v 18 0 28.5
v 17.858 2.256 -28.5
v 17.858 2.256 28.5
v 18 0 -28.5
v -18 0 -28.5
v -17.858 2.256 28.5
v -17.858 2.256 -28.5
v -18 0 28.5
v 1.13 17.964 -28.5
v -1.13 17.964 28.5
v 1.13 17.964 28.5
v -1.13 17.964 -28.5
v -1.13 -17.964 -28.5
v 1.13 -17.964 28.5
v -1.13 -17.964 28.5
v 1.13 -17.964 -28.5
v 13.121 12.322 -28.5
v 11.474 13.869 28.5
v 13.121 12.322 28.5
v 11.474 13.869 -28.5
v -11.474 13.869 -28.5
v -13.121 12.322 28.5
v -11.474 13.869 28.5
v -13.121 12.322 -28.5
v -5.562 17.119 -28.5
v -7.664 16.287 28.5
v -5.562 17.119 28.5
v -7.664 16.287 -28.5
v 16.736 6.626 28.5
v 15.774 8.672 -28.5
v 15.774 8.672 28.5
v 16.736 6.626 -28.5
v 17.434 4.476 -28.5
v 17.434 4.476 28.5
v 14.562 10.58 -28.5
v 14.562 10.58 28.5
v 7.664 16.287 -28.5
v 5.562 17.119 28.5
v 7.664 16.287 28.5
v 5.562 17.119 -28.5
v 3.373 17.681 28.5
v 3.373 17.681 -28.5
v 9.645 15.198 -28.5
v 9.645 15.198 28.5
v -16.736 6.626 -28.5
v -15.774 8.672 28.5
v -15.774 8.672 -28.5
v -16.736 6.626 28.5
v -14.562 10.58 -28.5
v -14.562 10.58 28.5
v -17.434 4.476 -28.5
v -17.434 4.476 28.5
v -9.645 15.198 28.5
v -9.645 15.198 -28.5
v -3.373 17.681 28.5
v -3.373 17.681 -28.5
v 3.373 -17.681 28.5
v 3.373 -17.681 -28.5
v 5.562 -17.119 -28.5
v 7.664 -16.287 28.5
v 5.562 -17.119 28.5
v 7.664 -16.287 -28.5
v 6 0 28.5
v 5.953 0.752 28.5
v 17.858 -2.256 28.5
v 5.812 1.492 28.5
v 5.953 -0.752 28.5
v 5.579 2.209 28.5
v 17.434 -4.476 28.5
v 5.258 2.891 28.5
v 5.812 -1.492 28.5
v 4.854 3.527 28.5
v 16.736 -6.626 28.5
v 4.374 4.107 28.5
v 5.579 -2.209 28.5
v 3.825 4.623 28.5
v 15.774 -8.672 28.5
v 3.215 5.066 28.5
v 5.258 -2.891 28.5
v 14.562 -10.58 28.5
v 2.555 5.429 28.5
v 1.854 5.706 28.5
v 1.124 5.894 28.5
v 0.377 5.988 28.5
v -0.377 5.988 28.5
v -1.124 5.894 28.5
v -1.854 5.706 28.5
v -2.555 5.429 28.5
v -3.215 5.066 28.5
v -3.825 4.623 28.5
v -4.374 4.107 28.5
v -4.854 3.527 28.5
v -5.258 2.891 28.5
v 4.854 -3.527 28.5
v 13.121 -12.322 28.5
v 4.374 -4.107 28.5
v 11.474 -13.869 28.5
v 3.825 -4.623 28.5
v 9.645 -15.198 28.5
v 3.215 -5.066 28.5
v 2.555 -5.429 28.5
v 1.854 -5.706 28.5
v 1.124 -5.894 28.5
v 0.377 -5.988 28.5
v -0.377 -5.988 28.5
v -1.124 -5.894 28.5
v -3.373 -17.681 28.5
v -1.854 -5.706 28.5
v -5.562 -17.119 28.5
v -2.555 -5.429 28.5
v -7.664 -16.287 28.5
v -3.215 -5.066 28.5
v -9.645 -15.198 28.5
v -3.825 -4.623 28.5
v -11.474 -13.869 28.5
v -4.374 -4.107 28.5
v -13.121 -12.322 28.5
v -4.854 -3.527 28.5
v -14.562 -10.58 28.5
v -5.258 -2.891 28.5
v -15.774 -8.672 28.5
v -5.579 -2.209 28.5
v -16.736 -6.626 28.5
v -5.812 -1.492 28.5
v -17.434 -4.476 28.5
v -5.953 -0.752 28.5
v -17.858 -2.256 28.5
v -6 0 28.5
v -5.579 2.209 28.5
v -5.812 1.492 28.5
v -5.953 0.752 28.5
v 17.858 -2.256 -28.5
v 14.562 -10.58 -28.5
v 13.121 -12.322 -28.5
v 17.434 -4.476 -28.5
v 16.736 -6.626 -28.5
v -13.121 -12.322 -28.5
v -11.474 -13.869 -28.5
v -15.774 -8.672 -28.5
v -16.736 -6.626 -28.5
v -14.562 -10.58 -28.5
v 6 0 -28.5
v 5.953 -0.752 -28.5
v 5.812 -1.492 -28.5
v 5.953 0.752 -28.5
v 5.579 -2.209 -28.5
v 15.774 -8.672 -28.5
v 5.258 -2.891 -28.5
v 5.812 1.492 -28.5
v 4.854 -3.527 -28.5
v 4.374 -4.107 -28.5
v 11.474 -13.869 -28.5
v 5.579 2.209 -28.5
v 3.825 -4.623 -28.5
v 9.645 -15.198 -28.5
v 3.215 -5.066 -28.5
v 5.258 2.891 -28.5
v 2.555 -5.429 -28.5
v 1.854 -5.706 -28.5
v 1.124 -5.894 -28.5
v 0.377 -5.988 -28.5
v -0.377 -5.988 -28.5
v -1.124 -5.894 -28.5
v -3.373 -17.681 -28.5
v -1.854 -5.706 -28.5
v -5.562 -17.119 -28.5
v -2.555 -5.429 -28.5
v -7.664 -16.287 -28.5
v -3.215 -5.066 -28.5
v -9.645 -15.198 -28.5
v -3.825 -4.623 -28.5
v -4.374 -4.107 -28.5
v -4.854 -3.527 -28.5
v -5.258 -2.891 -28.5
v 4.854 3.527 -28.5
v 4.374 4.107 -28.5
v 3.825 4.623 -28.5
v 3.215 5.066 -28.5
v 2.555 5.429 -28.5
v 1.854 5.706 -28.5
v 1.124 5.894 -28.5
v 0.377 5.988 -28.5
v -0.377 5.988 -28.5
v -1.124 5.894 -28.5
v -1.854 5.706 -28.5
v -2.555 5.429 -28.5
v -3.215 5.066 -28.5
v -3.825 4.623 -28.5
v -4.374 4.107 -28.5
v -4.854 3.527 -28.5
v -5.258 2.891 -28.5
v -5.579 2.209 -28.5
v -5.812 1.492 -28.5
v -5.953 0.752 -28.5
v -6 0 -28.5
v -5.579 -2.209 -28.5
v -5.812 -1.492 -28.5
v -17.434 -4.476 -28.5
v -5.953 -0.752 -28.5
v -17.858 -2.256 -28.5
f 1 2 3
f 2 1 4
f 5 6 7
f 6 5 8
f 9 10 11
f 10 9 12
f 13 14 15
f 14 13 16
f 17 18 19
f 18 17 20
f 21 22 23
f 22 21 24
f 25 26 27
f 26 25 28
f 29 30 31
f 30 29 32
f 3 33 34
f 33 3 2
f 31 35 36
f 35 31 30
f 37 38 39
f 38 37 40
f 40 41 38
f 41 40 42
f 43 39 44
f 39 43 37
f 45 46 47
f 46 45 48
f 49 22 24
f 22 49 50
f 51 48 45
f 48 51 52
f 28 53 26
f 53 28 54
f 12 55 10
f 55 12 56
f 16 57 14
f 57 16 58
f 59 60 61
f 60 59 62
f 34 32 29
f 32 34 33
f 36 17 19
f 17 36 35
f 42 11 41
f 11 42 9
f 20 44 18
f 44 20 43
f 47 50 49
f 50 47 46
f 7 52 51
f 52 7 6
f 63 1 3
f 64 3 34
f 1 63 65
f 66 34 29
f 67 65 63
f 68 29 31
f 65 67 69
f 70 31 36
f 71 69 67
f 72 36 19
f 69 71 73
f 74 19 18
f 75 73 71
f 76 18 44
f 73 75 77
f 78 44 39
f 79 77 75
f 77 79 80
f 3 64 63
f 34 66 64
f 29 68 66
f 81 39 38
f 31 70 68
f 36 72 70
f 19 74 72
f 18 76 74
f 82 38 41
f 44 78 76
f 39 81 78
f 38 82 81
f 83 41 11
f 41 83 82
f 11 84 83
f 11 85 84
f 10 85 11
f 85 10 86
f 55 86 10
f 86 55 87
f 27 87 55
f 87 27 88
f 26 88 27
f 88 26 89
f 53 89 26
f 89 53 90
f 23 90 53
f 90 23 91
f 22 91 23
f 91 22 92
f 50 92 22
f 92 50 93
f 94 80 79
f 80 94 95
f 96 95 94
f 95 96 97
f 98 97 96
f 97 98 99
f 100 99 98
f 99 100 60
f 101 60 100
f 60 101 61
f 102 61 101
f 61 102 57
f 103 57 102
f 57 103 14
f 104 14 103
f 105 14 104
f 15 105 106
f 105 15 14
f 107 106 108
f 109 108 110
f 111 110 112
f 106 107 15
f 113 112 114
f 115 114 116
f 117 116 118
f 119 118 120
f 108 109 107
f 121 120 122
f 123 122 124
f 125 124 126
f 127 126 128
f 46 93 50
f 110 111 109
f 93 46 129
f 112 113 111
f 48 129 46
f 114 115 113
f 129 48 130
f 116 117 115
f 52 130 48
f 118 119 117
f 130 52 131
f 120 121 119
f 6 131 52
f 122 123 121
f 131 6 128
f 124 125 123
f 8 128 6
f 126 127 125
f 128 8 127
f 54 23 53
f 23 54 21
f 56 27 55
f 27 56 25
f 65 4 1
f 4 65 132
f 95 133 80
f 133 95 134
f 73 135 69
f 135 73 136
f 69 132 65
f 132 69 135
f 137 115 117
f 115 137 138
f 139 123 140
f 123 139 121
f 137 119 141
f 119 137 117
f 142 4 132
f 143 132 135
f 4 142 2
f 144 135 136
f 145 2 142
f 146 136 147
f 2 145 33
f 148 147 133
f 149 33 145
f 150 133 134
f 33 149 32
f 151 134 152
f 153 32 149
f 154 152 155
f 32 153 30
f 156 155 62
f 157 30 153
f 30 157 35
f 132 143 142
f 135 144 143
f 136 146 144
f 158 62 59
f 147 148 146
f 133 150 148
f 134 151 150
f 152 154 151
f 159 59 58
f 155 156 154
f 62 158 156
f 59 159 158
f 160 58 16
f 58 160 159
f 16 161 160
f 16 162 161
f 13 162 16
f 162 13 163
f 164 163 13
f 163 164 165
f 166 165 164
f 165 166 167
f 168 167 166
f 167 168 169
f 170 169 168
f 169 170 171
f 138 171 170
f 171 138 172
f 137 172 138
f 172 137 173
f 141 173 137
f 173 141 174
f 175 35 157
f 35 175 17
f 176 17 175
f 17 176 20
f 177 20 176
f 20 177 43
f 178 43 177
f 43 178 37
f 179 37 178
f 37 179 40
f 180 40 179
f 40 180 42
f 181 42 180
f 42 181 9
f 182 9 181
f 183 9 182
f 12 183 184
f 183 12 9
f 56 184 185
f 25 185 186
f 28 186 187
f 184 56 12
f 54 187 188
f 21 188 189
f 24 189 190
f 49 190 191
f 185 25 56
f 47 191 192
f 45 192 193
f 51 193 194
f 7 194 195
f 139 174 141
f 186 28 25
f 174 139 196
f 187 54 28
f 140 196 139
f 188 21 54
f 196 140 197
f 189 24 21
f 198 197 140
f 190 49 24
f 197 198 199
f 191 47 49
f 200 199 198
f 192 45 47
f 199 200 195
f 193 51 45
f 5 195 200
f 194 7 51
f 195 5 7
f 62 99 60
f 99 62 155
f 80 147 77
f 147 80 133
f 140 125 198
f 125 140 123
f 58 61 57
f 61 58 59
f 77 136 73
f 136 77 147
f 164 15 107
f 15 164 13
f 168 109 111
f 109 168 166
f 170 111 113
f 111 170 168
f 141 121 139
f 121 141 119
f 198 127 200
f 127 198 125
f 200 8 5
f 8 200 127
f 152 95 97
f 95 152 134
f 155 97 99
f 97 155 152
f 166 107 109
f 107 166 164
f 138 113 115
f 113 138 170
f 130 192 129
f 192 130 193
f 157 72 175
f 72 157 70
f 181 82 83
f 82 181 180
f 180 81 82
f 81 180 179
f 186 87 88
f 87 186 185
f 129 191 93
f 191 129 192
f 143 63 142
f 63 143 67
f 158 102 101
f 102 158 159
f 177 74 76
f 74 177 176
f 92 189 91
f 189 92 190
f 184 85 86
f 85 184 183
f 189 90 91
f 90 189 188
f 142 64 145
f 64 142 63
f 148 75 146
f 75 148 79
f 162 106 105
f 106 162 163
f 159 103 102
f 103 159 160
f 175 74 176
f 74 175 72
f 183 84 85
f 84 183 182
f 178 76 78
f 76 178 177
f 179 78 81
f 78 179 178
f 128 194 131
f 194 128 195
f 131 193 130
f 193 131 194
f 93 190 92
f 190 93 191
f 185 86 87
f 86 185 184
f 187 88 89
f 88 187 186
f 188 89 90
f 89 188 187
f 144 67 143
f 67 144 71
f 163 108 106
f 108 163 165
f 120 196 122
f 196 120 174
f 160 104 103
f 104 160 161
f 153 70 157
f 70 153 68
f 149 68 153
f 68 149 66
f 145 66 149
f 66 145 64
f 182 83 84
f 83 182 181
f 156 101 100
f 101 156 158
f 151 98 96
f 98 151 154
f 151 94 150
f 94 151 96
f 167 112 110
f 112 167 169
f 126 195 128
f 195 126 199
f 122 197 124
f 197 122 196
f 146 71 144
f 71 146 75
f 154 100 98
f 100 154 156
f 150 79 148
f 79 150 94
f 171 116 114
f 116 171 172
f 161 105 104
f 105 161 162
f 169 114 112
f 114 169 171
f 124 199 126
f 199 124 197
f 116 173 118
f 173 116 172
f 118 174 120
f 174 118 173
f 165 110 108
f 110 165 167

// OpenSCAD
$fn = 50;


difference() {
	union() {
		translate(v = [0, 0, -28.5000000000]) {
			cylinder(h = 57, r = 18.0000000000);
		}
	}
	union() {
		translate(v = [0, 0, -100.0000000000]) {
			cylinder(h = 200, r = 6);
		}
	}
}
